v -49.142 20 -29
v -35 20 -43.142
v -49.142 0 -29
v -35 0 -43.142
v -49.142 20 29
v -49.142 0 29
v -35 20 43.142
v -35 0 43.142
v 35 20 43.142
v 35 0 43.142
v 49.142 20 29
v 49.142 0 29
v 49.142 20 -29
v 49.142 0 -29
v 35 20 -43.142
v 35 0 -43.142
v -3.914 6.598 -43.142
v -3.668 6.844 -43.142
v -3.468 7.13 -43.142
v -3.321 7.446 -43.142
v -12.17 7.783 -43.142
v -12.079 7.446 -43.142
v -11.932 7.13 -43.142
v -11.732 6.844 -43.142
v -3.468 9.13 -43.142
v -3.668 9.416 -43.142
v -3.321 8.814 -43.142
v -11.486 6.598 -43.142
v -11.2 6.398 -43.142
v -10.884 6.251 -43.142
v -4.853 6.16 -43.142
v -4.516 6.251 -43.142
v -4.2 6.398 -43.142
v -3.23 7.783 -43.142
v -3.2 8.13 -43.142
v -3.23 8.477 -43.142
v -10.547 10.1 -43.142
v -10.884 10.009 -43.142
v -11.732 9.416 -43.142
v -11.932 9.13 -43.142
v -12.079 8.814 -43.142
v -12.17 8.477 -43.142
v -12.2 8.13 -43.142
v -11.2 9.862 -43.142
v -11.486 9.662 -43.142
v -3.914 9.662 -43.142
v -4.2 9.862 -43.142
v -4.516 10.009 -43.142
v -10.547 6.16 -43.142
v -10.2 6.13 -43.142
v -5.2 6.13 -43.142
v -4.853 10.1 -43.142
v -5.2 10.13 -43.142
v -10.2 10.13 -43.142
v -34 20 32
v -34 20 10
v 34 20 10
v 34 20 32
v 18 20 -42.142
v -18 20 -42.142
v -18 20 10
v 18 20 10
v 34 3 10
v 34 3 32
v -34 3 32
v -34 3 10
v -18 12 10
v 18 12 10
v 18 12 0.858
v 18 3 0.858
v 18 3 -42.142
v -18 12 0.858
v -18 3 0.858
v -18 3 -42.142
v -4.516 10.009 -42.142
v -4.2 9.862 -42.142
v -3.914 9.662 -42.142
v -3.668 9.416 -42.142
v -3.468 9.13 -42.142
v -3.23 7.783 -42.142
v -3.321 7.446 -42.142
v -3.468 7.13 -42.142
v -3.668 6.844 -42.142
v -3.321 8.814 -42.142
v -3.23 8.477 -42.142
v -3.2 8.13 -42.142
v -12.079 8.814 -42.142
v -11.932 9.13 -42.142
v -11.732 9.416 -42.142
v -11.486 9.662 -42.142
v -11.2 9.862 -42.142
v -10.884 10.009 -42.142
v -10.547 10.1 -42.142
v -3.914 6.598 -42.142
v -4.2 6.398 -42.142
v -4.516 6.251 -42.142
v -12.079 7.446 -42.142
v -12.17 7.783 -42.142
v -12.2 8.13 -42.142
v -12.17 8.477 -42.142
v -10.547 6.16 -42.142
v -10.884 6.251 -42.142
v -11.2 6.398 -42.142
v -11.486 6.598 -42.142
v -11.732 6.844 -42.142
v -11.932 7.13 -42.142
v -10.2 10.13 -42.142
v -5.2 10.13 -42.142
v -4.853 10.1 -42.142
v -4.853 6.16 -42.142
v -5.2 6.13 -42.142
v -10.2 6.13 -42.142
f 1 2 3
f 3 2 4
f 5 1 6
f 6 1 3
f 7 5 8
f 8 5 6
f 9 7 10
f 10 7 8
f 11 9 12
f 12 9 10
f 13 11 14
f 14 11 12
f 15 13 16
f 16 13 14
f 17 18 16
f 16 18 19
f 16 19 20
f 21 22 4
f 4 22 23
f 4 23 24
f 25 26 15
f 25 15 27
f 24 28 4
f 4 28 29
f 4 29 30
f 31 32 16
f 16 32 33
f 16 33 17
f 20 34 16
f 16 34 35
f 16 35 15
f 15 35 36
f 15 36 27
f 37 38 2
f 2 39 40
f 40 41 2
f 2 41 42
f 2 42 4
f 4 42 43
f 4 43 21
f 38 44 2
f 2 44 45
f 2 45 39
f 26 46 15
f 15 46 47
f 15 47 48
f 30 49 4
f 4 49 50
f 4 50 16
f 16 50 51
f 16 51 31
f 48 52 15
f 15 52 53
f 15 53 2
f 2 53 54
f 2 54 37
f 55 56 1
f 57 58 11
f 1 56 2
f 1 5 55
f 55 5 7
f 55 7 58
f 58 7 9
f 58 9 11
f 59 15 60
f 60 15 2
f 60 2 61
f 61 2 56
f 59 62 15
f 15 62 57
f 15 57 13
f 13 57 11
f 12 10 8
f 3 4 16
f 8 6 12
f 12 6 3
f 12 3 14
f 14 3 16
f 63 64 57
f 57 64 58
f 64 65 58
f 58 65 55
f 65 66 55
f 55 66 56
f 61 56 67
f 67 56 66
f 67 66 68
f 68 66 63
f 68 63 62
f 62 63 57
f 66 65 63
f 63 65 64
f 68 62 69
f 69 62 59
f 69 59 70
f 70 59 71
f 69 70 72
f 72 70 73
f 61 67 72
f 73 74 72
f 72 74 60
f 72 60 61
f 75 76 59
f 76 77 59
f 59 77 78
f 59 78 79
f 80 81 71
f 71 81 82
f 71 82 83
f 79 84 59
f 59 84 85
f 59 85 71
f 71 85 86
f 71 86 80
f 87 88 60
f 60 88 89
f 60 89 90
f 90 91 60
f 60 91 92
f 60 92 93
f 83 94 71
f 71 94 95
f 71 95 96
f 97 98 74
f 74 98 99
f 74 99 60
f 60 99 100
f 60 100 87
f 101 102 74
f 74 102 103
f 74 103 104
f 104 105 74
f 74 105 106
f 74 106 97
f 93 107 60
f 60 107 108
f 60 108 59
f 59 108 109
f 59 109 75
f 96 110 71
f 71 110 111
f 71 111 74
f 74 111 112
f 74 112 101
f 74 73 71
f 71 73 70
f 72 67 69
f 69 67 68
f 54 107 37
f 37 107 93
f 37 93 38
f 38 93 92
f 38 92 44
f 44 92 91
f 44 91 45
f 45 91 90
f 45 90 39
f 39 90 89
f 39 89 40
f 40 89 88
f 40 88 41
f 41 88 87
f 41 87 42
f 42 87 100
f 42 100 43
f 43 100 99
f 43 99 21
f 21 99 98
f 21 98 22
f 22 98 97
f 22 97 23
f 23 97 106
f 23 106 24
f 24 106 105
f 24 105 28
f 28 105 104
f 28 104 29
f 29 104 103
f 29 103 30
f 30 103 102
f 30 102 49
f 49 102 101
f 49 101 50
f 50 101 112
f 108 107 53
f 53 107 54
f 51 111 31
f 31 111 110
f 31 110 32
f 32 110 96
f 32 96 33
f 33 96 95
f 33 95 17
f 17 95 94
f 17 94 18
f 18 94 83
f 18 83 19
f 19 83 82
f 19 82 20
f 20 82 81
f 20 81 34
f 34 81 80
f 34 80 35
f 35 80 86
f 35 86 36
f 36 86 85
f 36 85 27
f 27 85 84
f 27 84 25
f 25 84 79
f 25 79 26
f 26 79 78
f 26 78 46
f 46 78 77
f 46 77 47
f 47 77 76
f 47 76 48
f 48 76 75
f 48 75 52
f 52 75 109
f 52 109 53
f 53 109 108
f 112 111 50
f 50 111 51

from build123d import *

# Parameters (mm, degrees)
BOSS_EXTRUDE1_DEPTH = 20
SKETCH2_W           = 36
SKETCH2_H           = 43
SKETCH2_W_2         = 68
SKETCH2_H_2         = 22
CUT_EXTRUDE1_DEPTH  = 17
SKETCH3_W           = 36
SKETCH3_H           = 9.142135624
CUT_EXTRUDE2_DEPTH  = 8
CUT_EXTRUDE3_REACH  = 102.441


with BuildPart() as part:
    # Sketch1 → Boss-Extrude1 (new body)
    with BuildSketch(Plane(origin=(0, 0, 0), x_dir=(1, 0, 0), z_dir=(0, 1, 0))):
        Polygon((-35, 43.142135624), (35, 43.142135624), (49.142135624, 29), (49.142135624, -29), (35, -43.142135624), (-35, -43.142135624), (-49.142135624, -29), (-49.142135624, 29), align=None)
    extrude(amount=BOSS_EXTRUDE1_DEPTH)

    # Sketch2 → Cut-Extrude1 (cut)
    with BuildSketch(Plane(origin=(0, 20, 0), x_dir=(1, 0, 0), z_dir=(0, 1, 0))):
        with Locations((0, 20.642135624)):
            Rectangle(SKETCH2_W, SKETCH2_H)
        with Locations((0, -21)):
            Rectangle(SKETCH2_W_2, SKETCH2_H_2)
    extrude(amount=-CUT_EXTRUDE1_DEPTH, mode=Mode.SUBTRACT)

    # Sketch3 → Cut-Extrude2 (cut)
    with BuildSketch(Plane(origin=(0, 20, 0), x_dir=(1, 0, 0), z_dir=(0, 1, 0))):
        with Locations((0, -5.428932188)):
            Rectangle(SKETCH3_W, SKETCH3_H)
    extrude(amount=-CUT_EXTRUDE2_DEPTH, mode=Mode.SUBTRACT)

    # Sketch4 → Cut-Extrude3 (cut, up to next)
    with BuildSketch(Plane.XY.offset(-42.142135624), mode=Mode.PRIVATE) as cut_extrude3_sk1:
        with BuildLine():
            Line((-10.2, 10.13), (-5.2, 10.13))
            ThreePointArc((-5.2, 10.13), (-3.2, 8.13), (-5.2, 6.13))
            Line((-5.2, 6.13), (-10.2, 6.13))
            ThreePointArc((-10.2, 6.13), (-12.2, 8.13), (-10.2, 10.13))
        make_face()
    cut_extrude3_tool1 = extrude(cut_extrude3_sk1.sketch, amount=-CUT_EXTRUDE3_REACH, mode=Mode.PRIVATE) & part.part
    add(cut_extrude3_tool1.solids().sort_by_distance((-7.7, 8.13, -42.142136))[0], mode=Mode.SUBTRACT)


solid = part.part
